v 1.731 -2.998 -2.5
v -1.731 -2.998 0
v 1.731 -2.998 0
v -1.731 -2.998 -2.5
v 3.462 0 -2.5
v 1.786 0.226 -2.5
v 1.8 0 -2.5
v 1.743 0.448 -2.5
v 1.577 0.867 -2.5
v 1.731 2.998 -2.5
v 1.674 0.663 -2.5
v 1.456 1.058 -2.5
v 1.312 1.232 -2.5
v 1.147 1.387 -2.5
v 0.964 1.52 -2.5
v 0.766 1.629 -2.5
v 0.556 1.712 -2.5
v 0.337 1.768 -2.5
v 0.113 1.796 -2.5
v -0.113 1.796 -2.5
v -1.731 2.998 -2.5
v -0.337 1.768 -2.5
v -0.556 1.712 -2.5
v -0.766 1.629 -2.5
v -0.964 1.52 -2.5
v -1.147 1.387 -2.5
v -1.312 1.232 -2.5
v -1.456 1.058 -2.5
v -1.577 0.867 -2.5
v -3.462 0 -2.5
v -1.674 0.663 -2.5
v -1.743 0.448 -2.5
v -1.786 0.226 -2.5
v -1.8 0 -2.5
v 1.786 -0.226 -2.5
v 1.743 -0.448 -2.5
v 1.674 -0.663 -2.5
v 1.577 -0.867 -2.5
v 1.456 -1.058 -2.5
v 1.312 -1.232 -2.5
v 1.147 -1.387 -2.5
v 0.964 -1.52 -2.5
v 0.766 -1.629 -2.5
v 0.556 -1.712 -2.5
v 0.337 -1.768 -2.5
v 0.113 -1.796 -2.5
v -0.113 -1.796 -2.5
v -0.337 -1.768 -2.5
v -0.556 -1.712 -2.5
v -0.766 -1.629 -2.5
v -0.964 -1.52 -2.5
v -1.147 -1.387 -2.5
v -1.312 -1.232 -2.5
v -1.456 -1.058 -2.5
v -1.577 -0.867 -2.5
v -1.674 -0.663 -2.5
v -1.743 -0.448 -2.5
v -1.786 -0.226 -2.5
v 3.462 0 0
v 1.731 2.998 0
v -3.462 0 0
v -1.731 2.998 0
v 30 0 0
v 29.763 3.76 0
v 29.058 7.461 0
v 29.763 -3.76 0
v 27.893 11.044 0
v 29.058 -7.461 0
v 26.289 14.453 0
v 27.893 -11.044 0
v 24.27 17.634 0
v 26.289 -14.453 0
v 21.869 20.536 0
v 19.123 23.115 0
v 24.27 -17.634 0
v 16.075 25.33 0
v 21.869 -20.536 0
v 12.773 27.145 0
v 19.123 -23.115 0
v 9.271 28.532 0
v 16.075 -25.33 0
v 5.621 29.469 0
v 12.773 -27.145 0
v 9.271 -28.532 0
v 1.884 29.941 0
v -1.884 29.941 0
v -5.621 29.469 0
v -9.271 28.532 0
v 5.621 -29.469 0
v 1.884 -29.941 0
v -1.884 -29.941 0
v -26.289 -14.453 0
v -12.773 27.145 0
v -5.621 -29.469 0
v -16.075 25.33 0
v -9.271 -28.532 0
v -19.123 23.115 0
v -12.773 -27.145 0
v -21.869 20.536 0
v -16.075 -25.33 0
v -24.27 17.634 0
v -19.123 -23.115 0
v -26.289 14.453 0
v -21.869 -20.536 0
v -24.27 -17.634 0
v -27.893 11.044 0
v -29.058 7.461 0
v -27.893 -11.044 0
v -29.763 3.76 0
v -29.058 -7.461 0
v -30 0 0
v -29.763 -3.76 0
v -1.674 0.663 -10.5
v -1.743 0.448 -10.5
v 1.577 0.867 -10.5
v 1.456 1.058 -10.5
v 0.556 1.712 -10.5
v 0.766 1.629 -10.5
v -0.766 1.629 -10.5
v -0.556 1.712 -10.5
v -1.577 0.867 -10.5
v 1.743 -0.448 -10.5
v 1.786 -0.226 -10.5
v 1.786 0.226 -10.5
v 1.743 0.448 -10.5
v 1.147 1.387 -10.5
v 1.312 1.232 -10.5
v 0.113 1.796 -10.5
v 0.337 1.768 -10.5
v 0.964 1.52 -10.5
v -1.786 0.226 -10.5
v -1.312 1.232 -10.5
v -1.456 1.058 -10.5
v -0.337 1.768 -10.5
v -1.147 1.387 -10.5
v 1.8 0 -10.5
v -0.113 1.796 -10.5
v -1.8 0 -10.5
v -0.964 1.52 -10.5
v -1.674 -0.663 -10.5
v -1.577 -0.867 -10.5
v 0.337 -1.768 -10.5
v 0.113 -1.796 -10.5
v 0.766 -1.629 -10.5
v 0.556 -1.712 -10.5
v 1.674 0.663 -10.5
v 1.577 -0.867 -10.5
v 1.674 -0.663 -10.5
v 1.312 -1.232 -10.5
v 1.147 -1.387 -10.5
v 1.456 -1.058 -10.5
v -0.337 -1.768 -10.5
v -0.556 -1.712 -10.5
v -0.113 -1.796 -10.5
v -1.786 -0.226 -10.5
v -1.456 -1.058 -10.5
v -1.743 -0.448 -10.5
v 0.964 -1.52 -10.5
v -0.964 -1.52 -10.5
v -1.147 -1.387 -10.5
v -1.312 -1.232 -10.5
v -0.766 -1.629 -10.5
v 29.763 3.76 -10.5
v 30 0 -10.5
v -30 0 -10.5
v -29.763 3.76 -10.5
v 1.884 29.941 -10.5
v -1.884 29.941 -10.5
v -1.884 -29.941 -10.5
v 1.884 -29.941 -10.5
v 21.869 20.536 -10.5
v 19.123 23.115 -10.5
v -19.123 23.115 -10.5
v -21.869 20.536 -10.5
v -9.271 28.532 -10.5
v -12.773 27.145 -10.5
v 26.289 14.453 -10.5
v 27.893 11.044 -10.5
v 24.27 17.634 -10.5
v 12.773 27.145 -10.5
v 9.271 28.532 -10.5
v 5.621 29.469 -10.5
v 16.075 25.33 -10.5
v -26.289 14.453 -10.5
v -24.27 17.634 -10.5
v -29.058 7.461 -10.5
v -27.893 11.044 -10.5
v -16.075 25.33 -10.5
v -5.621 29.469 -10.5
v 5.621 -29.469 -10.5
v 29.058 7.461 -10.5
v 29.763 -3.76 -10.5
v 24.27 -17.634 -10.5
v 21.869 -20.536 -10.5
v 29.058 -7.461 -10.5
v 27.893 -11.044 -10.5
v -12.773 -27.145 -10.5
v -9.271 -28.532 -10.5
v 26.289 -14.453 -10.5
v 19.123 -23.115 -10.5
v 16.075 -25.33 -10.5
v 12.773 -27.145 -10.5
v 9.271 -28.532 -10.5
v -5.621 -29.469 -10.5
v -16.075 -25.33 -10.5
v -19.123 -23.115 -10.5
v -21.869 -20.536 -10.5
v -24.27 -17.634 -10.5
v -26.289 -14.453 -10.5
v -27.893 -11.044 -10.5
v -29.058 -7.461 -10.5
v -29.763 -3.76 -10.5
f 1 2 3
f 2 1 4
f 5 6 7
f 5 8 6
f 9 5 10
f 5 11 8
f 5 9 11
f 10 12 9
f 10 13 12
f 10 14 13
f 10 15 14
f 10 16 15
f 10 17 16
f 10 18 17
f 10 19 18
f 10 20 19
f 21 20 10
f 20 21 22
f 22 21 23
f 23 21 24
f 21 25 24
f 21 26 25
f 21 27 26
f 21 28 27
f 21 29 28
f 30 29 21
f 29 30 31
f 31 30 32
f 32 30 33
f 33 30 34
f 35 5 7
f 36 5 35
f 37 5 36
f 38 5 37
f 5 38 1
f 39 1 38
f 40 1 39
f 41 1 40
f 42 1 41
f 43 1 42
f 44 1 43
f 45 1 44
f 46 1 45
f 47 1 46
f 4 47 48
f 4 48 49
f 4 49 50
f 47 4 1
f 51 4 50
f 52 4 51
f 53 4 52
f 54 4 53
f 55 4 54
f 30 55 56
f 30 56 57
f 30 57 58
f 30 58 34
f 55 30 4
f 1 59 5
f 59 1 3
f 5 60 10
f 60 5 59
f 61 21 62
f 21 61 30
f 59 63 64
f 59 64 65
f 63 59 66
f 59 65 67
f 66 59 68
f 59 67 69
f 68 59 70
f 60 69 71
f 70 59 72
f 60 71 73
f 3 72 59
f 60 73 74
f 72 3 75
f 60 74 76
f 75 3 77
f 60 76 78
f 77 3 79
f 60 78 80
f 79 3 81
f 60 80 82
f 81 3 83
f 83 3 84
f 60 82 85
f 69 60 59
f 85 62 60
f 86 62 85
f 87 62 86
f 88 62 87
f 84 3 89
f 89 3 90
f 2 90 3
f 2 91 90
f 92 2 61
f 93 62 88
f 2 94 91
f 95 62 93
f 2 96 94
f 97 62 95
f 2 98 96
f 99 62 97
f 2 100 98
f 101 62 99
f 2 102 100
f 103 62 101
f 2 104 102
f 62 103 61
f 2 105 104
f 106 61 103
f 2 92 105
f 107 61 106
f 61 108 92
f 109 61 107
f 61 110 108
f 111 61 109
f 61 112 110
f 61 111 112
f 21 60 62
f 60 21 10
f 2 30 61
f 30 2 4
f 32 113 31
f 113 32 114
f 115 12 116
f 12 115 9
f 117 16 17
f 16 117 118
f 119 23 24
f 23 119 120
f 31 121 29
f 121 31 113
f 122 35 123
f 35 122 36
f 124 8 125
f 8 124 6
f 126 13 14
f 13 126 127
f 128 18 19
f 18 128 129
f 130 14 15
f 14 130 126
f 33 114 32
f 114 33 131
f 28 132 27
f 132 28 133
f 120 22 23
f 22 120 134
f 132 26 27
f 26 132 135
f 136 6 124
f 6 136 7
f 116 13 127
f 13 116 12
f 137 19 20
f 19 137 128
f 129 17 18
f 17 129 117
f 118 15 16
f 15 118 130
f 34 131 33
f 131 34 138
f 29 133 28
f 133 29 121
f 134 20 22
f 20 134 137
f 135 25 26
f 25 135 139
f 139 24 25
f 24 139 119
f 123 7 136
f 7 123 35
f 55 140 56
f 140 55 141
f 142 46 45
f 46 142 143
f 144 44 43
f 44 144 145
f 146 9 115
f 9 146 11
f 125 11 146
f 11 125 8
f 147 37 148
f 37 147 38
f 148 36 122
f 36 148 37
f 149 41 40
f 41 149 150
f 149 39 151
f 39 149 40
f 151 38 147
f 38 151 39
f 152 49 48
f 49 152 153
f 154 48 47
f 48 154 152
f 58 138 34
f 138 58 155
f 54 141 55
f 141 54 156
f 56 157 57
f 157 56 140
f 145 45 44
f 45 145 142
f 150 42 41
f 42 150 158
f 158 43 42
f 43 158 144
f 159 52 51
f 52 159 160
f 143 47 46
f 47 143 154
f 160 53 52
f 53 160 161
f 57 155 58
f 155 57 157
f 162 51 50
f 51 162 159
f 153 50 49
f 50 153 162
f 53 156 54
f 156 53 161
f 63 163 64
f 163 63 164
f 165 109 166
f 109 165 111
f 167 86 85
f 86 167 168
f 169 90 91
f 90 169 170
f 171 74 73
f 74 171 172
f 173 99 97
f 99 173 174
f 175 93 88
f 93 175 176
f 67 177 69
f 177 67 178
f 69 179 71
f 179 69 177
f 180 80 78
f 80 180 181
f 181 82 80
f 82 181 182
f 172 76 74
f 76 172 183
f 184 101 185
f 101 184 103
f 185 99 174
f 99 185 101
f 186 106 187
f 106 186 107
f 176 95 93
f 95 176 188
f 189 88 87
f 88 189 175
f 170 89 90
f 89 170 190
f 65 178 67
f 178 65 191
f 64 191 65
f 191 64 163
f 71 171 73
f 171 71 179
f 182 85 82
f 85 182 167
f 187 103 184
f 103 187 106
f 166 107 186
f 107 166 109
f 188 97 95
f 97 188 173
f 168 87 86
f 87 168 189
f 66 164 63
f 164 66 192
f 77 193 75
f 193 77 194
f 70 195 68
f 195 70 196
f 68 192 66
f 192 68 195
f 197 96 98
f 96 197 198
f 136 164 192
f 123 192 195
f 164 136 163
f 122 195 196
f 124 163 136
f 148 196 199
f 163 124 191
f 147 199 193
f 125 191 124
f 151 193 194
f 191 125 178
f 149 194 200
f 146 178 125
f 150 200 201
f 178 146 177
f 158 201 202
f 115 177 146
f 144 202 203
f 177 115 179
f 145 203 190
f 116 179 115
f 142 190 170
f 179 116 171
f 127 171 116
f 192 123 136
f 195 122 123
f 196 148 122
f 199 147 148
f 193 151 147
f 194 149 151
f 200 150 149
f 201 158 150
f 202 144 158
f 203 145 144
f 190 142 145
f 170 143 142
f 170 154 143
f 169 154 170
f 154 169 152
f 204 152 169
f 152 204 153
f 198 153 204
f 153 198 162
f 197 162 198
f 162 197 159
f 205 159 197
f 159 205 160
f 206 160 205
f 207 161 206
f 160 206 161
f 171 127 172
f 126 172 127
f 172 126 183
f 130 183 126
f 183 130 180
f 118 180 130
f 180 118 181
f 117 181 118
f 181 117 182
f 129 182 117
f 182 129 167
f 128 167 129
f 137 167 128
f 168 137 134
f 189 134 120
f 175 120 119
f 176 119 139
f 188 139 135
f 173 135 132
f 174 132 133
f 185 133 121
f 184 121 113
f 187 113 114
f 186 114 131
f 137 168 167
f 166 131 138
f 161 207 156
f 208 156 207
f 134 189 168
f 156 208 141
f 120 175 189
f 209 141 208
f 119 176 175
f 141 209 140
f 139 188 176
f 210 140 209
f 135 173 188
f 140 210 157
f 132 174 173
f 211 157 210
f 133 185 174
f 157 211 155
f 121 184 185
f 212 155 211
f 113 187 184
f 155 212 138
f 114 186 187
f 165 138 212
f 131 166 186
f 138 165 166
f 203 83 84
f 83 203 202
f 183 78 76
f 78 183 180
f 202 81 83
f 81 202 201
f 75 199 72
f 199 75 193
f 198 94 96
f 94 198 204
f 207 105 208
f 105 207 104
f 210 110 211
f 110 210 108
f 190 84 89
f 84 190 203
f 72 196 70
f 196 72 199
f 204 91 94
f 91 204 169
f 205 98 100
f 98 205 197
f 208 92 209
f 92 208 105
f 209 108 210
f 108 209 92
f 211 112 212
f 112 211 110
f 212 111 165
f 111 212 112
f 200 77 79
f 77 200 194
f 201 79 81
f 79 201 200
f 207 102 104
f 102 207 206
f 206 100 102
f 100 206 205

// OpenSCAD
$fn = 50;


difference() {
	union() {
		translate(v = [0, 0, -10.5000000000]) {
			cylinder(h = 10.5000000000, r = 30.0000000000);
		}
	}
	union() {
		translate(v = [0, 0, 0]) {
			rotate(a = [0, 0, 0]) {
				difference() {
					union() {
						translate(v = [0, 0, -2.5000000000]) {
							#linear_extrude(height = 2.5000000000) {
								polygon(points = [[3.4620000000, 0.0000000000], [1.7310000000, 2.9981799479], [-1.7310000000, 2.9981799479], [-3.4620000000, 0.0000000000], [-1.7310000000, -2.9981799479], [1.7310000000, -2.9981799479]]);
							}
						}
					}
					union();
				}
			}
		}
		#translate(v = [0, 0, -100.0000000000]) {
			cylinder(h = 200, r = 1.8000000000);
		}
	}
}
